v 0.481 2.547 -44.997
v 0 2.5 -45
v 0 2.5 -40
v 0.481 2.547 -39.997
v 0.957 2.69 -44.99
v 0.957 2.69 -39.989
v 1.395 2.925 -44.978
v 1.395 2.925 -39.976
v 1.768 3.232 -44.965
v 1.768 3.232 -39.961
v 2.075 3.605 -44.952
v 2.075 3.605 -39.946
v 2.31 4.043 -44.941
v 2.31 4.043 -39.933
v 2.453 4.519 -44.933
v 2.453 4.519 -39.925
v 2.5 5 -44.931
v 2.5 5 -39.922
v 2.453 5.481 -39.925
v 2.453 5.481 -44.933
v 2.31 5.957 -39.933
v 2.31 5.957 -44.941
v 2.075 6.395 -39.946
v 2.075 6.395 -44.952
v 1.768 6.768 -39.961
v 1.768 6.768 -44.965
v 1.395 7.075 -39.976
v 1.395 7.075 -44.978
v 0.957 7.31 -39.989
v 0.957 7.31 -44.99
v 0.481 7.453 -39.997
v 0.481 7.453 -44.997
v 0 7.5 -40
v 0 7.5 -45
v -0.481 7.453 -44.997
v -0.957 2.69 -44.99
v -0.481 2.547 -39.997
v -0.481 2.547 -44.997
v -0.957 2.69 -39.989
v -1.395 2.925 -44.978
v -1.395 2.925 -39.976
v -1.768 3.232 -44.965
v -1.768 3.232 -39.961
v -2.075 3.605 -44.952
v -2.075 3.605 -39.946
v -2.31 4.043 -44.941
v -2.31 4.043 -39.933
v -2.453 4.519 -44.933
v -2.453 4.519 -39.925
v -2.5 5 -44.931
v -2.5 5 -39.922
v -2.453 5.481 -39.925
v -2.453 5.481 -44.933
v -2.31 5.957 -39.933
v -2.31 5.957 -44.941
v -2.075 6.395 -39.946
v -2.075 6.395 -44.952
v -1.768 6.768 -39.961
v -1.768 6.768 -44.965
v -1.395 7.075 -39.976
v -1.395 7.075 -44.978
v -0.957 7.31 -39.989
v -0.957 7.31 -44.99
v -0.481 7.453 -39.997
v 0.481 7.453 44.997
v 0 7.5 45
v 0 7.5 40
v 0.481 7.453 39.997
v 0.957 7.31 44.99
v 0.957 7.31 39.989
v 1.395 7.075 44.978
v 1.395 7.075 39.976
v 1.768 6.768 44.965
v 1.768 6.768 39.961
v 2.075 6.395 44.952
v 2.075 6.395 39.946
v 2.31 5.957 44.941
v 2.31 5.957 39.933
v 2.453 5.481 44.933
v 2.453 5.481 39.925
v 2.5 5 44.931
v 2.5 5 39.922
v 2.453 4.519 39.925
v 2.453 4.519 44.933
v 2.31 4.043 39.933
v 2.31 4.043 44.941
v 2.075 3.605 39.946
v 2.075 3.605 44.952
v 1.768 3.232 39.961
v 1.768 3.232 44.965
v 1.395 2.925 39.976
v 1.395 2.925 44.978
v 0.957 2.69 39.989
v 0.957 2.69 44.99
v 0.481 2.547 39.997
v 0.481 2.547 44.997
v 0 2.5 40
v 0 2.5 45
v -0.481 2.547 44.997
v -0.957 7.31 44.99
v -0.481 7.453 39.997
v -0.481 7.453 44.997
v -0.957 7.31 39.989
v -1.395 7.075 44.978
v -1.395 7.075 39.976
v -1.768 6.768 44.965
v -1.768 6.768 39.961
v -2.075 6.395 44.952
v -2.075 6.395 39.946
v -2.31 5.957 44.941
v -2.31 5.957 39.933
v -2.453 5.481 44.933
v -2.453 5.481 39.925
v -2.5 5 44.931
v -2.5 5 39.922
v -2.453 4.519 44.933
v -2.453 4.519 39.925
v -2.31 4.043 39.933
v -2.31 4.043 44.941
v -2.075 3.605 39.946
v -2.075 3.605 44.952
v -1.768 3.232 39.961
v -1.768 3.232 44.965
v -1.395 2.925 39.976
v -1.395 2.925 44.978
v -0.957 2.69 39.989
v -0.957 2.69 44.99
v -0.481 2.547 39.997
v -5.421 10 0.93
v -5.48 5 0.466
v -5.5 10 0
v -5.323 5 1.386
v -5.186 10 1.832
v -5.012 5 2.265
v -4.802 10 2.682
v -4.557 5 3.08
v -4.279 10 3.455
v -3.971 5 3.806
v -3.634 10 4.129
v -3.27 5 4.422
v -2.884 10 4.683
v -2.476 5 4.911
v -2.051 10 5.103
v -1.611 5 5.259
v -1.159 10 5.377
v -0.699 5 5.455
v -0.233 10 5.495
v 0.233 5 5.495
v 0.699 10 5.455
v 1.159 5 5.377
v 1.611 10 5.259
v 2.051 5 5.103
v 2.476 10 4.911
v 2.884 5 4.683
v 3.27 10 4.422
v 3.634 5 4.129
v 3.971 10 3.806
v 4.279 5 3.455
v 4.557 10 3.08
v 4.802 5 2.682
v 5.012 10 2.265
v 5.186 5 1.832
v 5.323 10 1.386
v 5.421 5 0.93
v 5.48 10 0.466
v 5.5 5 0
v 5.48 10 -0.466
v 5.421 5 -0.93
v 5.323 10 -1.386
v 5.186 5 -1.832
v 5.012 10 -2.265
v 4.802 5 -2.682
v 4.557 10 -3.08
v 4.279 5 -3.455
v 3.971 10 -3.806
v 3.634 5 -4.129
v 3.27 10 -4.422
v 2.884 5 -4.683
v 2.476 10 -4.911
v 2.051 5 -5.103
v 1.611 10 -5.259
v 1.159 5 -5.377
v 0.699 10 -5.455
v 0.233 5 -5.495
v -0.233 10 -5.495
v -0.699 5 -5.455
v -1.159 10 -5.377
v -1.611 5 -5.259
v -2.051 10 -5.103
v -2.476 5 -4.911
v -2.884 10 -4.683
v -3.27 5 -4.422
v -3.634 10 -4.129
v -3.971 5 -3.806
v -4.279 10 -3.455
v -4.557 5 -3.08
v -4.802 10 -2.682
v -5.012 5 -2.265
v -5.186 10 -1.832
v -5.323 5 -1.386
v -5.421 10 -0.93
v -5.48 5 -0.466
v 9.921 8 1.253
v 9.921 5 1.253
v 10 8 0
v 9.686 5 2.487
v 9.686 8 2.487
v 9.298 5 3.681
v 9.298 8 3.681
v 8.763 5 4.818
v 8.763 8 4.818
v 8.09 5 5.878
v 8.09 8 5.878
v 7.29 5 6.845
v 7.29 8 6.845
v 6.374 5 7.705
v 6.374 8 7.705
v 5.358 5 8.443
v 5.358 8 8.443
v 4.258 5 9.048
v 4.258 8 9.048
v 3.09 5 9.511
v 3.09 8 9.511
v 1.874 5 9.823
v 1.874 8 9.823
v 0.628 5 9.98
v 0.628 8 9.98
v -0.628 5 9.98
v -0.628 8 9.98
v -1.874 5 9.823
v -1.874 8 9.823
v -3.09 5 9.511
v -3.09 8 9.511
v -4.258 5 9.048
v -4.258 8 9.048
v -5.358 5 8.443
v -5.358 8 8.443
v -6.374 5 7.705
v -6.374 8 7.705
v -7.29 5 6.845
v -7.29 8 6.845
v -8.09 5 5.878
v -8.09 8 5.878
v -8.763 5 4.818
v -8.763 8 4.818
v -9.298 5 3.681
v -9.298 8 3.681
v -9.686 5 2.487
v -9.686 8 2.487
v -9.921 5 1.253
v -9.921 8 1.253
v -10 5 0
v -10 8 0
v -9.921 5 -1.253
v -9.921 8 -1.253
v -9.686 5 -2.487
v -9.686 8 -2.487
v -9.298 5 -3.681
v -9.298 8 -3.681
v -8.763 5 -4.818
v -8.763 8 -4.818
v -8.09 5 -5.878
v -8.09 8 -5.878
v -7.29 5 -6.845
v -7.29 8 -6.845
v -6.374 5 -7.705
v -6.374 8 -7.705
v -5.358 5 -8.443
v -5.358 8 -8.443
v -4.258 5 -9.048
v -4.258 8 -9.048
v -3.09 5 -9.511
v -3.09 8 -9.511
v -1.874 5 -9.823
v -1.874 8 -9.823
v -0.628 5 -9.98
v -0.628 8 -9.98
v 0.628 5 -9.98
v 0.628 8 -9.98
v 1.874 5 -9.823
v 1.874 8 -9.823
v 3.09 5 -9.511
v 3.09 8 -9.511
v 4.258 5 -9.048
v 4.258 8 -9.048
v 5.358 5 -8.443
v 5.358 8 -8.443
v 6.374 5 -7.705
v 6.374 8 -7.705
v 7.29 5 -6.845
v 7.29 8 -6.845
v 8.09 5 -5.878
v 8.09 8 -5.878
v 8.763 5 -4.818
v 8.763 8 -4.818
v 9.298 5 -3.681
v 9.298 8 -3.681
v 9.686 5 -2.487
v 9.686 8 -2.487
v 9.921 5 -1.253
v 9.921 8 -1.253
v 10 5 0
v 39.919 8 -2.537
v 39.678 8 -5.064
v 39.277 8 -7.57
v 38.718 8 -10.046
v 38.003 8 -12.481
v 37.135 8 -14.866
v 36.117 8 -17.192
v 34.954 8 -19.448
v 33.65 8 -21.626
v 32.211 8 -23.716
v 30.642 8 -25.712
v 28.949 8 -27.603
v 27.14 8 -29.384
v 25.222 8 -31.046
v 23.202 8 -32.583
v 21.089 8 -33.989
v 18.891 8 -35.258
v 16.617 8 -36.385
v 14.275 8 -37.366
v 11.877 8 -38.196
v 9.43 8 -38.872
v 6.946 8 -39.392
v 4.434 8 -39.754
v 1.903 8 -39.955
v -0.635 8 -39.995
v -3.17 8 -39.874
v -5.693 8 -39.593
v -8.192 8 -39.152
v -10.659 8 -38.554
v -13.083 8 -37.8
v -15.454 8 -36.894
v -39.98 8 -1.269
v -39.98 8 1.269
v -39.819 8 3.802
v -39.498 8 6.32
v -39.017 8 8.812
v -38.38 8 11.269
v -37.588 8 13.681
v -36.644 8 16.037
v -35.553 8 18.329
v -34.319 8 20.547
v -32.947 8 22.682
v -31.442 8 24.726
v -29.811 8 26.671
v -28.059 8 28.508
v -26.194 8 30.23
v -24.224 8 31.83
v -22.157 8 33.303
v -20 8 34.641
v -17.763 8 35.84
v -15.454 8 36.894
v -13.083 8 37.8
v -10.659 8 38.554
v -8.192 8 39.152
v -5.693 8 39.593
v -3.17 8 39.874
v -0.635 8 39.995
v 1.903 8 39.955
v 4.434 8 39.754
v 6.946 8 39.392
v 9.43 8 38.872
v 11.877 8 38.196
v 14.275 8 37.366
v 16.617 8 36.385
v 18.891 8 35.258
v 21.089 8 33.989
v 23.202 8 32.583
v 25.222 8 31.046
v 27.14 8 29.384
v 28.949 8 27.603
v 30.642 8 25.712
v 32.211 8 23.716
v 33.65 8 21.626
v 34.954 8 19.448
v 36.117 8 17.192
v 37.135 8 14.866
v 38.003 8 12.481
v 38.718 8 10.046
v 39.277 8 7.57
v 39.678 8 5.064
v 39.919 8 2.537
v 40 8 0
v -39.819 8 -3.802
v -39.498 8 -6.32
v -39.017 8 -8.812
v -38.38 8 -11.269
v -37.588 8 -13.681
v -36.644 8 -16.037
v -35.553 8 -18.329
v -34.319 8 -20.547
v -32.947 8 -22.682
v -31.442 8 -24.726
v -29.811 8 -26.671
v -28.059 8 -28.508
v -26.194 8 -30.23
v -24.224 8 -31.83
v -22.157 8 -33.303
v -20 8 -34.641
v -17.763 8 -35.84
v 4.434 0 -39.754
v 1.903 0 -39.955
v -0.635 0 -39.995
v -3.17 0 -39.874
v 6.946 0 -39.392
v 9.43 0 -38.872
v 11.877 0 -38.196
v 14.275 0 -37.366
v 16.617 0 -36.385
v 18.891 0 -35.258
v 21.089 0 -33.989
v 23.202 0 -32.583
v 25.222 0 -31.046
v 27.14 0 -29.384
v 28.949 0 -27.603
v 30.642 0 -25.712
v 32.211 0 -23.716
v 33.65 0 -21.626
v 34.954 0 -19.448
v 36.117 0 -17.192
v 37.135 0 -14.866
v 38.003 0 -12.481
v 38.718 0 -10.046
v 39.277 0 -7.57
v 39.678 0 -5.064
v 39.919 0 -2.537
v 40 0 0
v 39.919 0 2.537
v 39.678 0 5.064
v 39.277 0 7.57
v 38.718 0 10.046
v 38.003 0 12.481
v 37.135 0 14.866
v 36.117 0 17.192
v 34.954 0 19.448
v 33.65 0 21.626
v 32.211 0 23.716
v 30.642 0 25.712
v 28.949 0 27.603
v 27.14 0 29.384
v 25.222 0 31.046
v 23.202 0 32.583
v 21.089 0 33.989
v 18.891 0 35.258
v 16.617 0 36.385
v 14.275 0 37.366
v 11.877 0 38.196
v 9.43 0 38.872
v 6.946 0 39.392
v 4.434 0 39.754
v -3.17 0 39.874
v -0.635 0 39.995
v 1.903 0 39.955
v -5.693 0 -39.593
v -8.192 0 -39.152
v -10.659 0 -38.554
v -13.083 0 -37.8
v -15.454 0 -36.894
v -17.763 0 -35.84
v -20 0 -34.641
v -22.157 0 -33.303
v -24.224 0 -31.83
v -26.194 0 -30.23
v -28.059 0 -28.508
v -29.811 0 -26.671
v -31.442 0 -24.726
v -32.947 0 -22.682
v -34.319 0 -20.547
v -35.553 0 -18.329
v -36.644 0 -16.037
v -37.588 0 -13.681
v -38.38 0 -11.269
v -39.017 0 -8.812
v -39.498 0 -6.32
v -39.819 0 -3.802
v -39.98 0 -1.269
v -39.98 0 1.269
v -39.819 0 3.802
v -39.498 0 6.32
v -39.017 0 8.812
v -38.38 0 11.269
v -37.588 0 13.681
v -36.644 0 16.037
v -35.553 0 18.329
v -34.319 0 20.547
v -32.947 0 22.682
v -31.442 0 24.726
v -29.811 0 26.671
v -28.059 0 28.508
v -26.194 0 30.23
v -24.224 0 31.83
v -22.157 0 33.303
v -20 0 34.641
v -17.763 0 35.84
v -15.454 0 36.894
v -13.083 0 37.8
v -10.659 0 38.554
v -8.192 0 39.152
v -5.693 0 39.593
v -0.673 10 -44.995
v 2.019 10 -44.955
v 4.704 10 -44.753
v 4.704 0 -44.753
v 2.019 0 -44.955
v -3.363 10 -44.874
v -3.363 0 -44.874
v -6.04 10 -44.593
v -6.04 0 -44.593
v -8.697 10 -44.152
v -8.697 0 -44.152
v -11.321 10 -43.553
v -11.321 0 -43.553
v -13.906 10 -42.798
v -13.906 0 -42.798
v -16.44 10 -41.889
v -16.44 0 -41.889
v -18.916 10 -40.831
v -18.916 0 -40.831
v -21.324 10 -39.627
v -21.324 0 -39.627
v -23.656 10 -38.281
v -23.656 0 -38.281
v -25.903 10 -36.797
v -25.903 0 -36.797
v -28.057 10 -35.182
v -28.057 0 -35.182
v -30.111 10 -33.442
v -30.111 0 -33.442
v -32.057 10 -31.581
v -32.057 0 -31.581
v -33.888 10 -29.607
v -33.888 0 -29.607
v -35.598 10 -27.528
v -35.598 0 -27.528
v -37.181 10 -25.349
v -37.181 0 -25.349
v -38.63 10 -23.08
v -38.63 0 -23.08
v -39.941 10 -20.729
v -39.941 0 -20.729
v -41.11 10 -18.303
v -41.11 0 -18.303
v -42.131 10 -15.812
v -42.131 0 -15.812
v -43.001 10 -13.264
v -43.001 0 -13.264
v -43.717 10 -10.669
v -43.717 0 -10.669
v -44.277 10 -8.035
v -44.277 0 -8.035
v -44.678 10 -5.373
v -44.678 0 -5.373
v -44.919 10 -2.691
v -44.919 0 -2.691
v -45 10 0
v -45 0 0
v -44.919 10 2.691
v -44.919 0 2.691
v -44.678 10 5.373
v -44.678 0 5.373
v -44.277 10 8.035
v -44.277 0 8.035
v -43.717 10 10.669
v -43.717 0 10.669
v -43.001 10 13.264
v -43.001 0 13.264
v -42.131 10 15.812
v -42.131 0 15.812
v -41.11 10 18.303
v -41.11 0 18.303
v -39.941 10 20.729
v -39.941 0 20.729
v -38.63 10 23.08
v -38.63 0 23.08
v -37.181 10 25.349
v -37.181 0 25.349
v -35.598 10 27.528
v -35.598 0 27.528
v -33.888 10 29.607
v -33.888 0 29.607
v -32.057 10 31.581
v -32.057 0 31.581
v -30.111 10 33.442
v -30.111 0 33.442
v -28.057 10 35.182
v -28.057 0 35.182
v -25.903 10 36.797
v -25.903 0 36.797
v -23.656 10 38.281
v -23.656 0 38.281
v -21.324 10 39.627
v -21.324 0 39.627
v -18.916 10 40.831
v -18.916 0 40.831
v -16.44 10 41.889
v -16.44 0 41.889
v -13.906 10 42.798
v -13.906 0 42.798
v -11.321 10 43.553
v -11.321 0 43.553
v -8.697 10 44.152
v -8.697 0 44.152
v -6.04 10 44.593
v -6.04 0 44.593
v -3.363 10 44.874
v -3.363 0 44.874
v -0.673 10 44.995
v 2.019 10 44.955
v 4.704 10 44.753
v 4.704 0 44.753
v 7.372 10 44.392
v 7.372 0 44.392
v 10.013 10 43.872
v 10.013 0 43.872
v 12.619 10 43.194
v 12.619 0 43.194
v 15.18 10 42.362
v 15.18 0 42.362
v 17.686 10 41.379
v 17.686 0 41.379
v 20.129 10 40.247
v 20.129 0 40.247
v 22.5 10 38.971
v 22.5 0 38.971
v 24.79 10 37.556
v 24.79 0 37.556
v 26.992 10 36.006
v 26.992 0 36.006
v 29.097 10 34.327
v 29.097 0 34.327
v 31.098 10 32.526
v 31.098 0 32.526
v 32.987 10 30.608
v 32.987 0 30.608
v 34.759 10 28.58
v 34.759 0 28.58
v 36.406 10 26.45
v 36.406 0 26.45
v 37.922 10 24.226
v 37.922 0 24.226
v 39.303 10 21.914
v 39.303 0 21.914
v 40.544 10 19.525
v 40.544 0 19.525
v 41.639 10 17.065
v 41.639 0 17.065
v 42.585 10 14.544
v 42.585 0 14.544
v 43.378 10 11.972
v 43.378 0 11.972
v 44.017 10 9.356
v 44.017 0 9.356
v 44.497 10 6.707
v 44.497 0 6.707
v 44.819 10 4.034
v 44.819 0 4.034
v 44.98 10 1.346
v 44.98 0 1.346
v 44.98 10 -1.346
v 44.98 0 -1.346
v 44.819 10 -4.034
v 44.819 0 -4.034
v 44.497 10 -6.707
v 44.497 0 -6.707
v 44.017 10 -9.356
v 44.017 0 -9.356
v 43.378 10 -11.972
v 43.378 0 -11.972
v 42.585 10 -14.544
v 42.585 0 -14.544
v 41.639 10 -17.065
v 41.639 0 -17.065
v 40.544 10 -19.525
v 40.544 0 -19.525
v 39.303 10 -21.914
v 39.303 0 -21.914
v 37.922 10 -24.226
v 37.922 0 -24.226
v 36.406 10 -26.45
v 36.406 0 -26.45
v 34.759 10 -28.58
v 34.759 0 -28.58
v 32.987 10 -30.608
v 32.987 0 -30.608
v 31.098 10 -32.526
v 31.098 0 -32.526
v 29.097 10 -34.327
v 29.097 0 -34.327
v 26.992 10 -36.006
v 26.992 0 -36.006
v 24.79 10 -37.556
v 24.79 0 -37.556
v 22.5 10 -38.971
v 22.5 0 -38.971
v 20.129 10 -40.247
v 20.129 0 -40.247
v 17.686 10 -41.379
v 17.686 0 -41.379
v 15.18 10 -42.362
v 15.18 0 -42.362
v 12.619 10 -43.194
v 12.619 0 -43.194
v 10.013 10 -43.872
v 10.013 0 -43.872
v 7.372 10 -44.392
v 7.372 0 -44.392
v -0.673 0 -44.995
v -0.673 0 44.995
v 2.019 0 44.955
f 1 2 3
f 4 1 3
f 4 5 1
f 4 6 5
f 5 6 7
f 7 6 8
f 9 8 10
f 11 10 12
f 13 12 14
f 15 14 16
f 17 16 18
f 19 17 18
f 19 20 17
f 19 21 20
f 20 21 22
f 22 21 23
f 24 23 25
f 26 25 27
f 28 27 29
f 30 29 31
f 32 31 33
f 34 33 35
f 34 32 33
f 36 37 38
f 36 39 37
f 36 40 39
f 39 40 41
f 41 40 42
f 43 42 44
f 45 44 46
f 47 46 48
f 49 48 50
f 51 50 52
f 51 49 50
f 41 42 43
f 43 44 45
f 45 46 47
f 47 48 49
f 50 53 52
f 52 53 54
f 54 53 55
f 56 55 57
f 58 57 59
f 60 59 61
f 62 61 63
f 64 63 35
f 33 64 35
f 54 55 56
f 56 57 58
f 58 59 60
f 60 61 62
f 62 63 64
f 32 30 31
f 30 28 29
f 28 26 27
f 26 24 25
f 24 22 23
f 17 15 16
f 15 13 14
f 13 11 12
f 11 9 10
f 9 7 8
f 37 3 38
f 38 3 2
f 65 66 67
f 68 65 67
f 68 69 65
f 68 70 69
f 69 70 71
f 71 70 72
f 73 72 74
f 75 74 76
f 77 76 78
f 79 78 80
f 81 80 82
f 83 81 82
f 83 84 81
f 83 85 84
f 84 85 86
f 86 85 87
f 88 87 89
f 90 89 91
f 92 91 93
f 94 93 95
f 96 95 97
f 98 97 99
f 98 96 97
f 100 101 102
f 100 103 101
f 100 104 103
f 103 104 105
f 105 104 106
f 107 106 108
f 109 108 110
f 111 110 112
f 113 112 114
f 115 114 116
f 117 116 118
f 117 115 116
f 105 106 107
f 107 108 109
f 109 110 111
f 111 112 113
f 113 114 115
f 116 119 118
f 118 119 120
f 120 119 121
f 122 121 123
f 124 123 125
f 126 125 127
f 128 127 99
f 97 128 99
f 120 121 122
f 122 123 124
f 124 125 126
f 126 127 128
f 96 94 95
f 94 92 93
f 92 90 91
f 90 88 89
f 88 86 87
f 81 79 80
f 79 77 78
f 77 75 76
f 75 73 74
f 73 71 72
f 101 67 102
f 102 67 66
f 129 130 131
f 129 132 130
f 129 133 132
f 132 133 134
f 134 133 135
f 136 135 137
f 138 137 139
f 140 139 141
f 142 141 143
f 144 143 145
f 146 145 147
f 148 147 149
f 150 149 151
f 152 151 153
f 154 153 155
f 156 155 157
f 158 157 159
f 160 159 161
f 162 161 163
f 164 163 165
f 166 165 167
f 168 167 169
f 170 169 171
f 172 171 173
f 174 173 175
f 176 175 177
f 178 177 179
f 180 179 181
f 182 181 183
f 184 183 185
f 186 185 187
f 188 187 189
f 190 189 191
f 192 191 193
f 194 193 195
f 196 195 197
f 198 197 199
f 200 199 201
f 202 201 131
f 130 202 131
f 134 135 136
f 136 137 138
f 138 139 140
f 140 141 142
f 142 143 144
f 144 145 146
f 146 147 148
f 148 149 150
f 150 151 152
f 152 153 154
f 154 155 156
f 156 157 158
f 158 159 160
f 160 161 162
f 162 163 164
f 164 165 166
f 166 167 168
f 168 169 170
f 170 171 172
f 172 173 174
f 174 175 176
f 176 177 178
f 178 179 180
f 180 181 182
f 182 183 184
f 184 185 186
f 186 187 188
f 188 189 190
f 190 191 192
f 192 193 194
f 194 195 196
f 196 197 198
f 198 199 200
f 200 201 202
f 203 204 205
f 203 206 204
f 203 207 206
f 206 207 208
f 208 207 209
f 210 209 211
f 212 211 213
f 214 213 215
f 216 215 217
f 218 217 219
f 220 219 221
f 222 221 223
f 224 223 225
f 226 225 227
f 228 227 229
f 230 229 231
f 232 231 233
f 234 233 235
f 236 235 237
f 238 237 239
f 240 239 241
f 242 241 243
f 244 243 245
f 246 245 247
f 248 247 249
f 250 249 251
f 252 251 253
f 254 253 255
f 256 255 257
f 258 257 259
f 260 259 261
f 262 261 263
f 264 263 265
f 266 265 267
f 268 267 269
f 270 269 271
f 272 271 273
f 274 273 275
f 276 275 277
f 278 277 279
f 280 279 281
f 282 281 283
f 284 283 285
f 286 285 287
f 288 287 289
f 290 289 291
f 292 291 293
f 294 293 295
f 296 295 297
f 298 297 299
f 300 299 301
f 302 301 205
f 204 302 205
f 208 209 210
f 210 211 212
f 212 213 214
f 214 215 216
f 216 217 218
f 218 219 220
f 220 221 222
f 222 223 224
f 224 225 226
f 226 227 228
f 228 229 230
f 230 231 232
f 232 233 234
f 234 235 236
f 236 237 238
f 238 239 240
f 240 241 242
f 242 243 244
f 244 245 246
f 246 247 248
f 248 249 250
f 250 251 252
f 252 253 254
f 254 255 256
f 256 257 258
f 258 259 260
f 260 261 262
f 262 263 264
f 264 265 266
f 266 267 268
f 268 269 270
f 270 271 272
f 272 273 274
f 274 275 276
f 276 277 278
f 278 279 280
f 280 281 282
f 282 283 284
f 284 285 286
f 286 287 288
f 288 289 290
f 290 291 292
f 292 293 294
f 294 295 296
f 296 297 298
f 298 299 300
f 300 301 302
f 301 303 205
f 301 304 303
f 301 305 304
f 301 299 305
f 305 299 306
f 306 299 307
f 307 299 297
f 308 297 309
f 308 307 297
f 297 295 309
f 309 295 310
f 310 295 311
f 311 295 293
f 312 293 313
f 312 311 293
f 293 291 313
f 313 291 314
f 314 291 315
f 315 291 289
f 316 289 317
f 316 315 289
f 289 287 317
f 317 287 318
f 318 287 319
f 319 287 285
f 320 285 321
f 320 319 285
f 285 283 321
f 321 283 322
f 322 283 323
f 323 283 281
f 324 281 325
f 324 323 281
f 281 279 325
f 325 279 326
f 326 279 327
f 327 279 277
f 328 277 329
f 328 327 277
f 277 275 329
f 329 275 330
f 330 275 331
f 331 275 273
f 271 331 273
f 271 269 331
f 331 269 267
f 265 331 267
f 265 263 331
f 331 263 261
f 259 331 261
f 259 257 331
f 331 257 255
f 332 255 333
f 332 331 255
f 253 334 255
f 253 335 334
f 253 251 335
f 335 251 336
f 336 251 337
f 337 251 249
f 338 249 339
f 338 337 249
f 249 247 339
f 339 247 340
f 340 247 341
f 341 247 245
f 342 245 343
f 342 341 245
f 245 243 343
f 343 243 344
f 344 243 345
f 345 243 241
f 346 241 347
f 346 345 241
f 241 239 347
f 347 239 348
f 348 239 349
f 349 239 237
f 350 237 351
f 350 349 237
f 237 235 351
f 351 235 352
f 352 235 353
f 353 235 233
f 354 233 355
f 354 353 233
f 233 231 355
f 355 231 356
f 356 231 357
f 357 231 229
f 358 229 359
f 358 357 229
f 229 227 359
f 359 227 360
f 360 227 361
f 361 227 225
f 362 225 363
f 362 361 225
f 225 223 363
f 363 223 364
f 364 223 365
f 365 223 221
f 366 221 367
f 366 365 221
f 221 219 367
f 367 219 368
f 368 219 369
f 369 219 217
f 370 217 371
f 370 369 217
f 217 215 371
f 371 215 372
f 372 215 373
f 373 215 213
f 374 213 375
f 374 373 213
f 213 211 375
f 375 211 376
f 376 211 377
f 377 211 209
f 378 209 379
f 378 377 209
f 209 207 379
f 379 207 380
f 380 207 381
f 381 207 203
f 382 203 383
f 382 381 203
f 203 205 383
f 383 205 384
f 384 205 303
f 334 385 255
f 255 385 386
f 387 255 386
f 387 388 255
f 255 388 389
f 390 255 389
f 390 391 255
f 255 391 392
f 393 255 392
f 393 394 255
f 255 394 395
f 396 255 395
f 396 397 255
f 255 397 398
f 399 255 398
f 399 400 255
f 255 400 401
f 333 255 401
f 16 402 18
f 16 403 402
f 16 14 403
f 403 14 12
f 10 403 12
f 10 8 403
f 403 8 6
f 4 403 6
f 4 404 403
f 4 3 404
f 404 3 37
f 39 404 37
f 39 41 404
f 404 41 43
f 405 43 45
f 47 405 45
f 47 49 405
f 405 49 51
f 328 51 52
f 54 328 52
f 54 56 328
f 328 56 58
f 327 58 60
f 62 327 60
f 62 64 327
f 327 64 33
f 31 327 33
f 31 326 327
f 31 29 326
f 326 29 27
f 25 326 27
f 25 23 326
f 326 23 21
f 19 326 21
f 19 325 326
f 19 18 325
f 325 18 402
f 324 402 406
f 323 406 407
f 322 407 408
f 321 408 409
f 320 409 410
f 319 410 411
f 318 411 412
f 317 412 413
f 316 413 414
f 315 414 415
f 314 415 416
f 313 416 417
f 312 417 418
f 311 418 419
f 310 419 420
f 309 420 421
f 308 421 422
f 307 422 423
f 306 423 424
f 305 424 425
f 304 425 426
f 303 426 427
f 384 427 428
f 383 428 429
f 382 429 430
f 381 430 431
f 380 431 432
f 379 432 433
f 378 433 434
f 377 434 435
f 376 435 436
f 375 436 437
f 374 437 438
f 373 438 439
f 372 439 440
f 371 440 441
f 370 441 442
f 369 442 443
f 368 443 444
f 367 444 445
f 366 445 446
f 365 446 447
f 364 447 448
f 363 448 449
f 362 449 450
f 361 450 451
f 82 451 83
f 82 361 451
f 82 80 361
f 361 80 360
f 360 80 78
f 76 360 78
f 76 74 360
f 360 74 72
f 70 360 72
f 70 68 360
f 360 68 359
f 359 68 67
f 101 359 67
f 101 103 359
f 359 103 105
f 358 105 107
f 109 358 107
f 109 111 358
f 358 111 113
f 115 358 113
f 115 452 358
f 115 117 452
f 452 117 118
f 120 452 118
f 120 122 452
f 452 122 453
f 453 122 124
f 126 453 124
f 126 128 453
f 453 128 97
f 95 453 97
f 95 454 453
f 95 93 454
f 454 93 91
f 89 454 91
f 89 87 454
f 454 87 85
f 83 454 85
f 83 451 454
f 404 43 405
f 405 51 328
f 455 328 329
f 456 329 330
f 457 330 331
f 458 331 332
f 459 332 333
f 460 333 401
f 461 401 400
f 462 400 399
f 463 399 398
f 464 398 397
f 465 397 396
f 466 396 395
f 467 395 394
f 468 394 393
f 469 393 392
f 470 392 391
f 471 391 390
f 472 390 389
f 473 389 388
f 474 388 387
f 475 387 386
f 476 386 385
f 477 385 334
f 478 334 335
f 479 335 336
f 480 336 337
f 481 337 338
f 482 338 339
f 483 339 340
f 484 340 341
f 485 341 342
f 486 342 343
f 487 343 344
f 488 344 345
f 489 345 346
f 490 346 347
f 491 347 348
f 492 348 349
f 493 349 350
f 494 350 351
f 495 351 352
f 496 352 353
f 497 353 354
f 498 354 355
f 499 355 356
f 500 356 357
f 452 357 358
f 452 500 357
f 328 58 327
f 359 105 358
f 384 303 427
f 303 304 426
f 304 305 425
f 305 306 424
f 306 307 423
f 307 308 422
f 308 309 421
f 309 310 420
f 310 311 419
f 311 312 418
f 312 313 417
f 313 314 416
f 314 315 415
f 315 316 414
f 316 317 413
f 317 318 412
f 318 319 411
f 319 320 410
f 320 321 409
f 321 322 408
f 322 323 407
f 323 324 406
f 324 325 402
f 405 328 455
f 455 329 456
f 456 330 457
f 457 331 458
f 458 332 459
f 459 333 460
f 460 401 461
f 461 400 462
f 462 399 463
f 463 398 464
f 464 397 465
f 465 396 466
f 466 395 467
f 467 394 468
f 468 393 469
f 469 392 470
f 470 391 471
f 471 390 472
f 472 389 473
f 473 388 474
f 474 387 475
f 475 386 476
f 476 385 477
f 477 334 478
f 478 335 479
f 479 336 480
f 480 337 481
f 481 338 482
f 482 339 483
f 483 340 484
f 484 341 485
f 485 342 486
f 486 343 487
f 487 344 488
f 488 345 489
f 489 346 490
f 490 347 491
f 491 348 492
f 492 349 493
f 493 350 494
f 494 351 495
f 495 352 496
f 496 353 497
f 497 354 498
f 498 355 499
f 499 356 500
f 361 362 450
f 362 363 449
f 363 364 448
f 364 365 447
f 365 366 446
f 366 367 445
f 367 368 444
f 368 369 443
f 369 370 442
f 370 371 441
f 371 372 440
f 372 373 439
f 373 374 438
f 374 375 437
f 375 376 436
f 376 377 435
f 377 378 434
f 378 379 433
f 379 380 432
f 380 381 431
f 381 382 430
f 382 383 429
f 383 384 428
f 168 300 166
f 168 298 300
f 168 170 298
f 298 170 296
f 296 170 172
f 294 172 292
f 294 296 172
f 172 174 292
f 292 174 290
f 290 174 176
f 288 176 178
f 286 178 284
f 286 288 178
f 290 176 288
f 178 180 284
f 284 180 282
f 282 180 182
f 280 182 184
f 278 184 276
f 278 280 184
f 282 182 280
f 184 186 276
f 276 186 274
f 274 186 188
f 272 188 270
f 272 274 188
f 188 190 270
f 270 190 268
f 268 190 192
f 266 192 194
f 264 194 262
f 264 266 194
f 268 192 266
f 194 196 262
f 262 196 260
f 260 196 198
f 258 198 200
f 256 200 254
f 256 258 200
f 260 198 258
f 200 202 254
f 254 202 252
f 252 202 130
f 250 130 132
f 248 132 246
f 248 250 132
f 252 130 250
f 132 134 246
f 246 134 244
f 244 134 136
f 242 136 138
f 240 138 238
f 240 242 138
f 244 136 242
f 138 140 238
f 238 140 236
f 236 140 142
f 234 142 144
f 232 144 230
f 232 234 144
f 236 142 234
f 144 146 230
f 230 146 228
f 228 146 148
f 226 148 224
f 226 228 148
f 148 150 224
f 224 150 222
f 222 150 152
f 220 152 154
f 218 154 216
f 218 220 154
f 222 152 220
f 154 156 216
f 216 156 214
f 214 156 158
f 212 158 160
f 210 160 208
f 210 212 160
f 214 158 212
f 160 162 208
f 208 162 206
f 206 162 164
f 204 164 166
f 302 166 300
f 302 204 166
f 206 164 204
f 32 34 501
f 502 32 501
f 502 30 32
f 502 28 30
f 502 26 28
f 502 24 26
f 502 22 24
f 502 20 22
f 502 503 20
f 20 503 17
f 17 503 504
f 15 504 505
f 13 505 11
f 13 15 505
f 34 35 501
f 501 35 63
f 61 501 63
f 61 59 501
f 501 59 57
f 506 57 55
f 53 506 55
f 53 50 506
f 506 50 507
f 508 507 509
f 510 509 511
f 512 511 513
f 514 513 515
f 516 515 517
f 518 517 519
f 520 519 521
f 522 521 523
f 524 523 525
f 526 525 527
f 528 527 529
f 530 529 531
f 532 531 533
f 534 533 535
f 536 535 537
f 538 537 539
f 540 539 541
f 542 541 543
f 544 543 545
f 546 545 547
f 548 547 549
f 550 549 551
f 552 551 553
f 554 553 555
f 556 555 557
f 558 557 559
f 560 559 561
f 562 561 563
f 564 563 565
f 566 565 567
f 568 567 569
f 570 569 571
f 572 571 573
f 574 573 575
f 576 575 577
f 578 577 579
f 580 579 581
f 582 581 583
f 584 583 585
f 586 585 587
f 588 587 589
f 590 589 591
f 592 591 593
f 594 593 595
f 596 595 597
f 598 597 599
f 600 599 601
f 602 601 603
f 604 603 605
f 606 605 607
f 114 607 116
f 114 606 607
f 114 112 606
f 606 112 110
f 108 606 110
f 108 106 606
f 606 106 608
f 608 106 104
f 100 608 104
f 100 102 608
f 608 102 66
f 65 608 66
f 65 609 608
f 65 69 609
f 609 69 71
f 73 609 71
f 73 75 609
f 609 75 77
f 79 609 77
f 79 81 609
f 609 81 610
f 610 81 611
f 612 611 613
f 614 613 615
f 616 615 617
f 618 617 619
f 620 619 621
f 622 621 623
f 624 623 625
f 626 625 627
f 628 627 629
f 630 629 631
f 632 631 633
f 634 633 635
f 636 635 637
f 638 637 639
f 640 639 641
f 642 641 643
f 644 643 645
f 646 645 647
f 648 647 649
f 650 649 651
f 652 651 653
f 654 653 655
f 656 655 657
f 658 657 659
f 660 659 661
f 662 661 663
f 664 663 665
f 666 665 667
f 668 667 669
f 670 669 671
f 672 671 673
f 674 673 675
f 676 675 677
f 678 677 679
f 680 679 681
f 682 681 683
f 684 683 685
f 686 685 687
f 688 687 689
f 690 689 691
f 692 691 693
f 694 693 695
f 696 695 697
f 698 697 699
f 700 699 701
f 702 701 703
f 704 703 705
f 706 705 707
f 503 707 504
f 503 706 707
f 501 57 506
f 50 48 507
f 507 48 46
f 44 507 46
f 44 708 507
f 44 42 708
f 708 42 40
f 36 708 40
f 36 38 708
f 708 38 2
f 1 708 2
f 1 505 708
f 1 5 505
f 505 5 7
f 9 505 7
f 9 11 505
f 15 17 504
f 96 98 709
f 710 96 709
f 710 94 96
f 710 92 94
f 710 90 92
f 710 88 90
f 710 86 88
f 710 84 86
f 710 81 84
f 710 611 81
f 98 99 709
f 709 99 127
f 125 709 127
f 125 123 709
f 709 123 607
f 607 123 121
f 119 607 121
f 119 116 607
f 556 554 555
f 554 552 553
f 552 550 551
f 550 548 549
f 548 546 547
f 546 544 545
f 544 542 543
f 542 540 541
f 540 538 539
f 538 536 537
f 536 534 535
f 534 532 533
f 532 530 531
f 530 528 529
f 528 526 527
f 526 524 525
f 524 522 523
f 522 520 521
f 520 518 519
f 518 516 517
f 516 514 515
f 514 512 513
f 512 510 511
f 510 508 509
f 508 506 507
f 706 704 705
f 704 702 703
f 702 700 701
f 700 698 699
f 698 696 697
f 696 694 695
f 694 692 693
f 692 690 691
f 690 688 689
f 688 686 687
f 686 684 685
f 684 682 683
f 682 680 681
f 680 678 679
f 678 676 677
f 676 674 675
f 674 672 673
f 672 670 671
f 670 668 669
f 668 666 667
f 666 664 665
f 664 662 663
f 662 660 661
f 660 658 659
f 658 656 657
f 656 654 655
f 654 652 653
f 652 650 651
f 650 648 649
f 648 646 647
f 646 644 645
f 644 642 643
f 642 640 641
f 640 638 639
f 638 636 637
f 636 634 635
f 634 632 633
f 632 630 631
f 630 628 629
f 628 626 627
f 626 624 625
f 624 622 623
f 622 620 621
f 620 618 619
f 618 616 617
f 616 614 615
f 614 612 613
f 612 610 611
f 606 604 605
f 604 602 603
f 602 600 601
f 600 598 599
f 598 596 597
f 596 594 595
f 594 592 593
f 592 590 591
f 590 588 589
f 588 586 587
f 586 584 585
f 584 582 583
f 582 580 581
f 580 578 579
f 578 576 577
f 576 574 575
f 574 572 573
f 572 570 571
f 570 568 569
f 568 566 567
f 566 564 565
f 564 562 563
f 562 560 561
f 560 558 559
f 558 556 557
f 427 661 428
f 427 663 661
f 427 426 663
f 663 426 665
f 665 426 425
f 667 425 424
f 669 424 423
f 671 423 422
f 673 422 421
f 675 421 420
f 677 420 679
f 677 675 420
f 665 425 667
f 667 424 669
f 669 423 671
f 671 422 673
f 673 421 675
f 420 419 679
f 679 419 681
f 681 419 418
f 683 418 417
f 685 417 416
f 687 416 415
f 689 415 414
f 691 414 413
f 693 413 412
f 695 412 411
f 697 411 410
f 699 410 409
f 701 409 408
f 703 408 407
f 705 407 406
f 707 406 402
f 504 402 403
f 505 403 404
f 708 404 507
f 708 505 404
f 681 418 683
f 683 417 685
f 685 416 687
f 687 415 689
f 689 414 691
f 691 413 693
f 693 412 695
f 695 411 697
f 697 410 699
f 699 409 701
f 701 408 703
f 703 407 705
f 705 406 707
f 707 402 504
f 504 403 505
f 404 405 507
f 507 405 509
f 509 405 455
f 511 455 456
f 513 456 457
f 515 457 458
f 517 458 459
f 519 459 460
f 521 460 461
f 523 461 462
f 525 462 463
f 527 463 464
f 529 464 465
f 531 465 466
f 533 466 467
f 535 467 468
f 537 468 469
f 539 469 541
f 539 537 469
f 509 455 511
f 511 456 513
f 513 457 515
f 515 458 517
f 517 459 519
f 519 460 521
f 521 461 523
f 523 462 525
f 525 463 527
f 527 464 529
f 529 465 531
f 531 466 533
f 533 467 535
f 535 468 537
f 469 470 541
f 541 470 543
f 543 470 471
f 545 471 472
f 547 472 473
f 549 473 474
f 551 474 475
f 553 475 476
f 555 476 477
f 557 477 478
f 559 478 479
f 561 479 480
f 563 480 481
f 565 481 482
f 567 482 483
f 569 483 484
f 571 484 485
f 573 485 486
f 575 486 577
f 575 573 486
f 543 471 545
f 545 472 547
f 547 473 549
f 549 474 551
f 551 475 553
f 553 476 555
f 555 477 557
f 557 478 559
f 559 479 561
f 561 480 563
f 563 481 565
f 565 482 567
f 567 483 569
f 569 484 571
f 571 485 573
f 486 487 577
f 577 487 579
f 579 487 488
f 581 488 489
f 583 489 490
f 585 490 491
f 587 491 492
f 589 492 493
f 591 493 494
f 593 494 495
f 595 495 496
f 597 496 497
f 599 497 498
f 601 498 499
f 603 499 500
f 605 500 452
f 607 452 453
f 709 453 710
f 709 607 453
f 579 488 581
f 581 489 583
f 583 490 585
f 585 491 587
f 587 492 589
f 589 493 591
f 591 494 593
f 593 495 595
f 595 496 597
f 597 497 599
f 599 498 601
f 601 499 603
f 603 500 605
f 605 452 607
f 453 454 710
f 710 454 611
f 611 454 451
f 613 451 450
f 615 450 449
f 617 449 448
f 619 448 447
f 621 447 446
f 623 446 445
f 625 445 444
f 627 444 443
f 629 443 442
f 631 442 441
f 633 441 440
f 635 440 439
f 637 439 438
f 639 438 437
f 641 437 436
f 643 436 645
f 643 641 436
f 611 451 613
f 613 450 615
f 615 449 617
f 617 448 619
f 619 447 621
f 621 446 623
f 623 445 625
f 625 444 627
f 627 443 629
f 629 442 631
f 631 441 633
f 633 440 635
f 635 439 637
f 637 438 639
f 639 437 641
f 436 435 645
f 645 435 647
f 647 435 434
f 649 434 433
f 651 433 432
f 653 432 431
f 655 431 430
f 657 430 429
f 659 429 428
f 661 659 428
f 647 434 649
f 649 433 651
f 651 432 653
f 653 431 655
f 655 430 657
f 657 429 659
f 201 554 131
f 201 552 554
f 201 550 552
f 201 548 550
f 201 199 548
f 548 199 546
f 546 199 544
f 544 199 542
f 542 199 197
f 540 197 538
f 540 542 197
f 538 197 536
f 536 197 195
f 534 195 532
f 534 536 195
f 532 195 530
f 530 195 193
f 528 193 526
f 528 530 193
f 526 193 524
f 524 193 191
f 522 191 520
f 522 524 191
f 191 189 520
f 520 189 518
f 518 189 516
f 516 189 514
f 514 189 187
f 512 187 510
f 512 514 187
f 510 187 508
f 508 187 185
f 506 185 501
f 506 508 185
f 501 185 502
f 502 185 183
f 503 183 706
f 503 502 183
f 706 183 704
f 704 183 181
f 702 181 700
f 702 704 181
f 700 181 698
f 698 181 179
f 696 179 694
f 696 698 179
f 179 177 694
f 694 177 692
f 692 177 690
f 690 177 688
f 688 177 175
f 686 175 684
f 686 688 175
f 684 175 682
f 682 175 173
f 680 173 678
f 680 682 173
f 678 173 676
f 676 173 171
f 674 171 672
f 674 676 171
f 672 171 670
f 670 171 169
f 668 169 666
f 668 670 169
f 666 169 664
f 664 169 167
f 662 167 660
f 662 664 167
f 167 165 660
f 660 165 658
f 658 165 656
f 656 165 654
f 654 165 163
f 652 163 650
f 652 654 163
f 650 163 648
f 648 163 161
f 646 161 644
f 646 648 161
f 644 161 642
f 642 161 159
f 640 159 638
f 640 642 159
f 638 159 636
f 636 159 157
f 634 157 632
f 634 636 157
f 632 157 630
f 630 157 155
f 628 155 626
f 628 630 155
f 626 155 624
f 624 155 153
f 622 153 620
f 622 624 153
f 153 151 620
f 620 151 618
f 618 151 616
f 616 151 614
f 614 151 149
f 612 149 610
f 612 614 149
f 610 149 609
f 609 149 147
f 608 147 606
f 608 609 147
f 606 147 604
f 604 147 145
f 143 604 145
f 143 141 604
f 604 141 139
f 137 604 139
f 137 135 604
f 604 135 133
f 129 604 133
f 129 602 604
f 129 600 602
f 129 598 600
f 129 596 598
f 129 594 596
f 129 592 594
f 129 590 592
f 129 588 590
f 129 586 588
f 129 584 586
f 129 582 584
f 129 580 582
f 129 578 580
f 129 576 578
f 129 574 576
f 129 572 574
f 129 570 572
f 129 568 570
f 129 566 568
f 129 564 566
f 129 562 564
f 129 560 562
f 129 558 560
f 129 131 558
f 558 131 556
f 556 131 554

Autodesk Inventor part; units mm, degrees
ref_plane "YZ Plane" through (0, 0, 0) normal (1, 0, 0) x (0, 1, 0)
sketch "Sketch1" plane through (0, 0, 0) normal (0, 1, 0) x (-1, 0, 0)
  circle A0 centre (0, 0) radius 45
  dimension "d0" = 90
extrude "Extrusion1" add sketch "Sketch1" along normal blind 10
sketch "Sketch2" plane through (0, 0, 0) normal (0, -1, 0) x (1, 0, 0)
  circle A0 centre (0, 0) radius 45 projected
  circle A1 centre (0, 0) radius 40
  dimension "d3" = 80
extrude "Extrusion2" cut sketch "Sketch2" against normal blind 5 contours A1
sketch "Sketch3" plane through (0, 5, 0) normal (0, -1, 0) x (1, 0, 0)
  circle A0 centre (0, 0) radius 40 projected
  circle A1 centre (0, 0) radius 10
  dimension "d6" = 20
extrude "Extrusion3" cut sketch "Sketch3" against normal blind 3
sketch "Sketch4" plane through (0, 5, 0) normal (0, -1, 0) x (1, 0, 0)
  circle A0 centre (0, 0) radius 10 projected
hole "Hole1" at (0, 5, 0) direction (0, 1, 0) diameter 11 end through all
ref_plane "Work Plane1" through (0, 0, 45) normal (0, 0, 1) x (1, 0, 0)
sketch "Sketch5" plane through (0, 0, 45) normal (0, 0, 1) x (1, 0, 0)
  point P0 (0, 0)
  point P1 (0, 5)
  dimension "d17" = 5
ref_plane "Work Plane2" through (0, 0, -45) normal (0, 0, 1) x (1, 0, 0)
sketch "Sketch6" plane through (0, 0, -45) normal (0, 0, 1) x (1, 0, 0)
  point P0 (0, 0)
  point P1 (0, 5)
  dimension "d19" = 5
hole "Hole2" at (0, 5, 45) direction (0, 0, -1) diameter 5 depth 8 tip angle 118
hole "Hole3" at (0, 5, -45) direction (0, 0, 1) diameter 5 depth 8 tip angle 118
properties part number "rotor" material "PMMA Plastic"
